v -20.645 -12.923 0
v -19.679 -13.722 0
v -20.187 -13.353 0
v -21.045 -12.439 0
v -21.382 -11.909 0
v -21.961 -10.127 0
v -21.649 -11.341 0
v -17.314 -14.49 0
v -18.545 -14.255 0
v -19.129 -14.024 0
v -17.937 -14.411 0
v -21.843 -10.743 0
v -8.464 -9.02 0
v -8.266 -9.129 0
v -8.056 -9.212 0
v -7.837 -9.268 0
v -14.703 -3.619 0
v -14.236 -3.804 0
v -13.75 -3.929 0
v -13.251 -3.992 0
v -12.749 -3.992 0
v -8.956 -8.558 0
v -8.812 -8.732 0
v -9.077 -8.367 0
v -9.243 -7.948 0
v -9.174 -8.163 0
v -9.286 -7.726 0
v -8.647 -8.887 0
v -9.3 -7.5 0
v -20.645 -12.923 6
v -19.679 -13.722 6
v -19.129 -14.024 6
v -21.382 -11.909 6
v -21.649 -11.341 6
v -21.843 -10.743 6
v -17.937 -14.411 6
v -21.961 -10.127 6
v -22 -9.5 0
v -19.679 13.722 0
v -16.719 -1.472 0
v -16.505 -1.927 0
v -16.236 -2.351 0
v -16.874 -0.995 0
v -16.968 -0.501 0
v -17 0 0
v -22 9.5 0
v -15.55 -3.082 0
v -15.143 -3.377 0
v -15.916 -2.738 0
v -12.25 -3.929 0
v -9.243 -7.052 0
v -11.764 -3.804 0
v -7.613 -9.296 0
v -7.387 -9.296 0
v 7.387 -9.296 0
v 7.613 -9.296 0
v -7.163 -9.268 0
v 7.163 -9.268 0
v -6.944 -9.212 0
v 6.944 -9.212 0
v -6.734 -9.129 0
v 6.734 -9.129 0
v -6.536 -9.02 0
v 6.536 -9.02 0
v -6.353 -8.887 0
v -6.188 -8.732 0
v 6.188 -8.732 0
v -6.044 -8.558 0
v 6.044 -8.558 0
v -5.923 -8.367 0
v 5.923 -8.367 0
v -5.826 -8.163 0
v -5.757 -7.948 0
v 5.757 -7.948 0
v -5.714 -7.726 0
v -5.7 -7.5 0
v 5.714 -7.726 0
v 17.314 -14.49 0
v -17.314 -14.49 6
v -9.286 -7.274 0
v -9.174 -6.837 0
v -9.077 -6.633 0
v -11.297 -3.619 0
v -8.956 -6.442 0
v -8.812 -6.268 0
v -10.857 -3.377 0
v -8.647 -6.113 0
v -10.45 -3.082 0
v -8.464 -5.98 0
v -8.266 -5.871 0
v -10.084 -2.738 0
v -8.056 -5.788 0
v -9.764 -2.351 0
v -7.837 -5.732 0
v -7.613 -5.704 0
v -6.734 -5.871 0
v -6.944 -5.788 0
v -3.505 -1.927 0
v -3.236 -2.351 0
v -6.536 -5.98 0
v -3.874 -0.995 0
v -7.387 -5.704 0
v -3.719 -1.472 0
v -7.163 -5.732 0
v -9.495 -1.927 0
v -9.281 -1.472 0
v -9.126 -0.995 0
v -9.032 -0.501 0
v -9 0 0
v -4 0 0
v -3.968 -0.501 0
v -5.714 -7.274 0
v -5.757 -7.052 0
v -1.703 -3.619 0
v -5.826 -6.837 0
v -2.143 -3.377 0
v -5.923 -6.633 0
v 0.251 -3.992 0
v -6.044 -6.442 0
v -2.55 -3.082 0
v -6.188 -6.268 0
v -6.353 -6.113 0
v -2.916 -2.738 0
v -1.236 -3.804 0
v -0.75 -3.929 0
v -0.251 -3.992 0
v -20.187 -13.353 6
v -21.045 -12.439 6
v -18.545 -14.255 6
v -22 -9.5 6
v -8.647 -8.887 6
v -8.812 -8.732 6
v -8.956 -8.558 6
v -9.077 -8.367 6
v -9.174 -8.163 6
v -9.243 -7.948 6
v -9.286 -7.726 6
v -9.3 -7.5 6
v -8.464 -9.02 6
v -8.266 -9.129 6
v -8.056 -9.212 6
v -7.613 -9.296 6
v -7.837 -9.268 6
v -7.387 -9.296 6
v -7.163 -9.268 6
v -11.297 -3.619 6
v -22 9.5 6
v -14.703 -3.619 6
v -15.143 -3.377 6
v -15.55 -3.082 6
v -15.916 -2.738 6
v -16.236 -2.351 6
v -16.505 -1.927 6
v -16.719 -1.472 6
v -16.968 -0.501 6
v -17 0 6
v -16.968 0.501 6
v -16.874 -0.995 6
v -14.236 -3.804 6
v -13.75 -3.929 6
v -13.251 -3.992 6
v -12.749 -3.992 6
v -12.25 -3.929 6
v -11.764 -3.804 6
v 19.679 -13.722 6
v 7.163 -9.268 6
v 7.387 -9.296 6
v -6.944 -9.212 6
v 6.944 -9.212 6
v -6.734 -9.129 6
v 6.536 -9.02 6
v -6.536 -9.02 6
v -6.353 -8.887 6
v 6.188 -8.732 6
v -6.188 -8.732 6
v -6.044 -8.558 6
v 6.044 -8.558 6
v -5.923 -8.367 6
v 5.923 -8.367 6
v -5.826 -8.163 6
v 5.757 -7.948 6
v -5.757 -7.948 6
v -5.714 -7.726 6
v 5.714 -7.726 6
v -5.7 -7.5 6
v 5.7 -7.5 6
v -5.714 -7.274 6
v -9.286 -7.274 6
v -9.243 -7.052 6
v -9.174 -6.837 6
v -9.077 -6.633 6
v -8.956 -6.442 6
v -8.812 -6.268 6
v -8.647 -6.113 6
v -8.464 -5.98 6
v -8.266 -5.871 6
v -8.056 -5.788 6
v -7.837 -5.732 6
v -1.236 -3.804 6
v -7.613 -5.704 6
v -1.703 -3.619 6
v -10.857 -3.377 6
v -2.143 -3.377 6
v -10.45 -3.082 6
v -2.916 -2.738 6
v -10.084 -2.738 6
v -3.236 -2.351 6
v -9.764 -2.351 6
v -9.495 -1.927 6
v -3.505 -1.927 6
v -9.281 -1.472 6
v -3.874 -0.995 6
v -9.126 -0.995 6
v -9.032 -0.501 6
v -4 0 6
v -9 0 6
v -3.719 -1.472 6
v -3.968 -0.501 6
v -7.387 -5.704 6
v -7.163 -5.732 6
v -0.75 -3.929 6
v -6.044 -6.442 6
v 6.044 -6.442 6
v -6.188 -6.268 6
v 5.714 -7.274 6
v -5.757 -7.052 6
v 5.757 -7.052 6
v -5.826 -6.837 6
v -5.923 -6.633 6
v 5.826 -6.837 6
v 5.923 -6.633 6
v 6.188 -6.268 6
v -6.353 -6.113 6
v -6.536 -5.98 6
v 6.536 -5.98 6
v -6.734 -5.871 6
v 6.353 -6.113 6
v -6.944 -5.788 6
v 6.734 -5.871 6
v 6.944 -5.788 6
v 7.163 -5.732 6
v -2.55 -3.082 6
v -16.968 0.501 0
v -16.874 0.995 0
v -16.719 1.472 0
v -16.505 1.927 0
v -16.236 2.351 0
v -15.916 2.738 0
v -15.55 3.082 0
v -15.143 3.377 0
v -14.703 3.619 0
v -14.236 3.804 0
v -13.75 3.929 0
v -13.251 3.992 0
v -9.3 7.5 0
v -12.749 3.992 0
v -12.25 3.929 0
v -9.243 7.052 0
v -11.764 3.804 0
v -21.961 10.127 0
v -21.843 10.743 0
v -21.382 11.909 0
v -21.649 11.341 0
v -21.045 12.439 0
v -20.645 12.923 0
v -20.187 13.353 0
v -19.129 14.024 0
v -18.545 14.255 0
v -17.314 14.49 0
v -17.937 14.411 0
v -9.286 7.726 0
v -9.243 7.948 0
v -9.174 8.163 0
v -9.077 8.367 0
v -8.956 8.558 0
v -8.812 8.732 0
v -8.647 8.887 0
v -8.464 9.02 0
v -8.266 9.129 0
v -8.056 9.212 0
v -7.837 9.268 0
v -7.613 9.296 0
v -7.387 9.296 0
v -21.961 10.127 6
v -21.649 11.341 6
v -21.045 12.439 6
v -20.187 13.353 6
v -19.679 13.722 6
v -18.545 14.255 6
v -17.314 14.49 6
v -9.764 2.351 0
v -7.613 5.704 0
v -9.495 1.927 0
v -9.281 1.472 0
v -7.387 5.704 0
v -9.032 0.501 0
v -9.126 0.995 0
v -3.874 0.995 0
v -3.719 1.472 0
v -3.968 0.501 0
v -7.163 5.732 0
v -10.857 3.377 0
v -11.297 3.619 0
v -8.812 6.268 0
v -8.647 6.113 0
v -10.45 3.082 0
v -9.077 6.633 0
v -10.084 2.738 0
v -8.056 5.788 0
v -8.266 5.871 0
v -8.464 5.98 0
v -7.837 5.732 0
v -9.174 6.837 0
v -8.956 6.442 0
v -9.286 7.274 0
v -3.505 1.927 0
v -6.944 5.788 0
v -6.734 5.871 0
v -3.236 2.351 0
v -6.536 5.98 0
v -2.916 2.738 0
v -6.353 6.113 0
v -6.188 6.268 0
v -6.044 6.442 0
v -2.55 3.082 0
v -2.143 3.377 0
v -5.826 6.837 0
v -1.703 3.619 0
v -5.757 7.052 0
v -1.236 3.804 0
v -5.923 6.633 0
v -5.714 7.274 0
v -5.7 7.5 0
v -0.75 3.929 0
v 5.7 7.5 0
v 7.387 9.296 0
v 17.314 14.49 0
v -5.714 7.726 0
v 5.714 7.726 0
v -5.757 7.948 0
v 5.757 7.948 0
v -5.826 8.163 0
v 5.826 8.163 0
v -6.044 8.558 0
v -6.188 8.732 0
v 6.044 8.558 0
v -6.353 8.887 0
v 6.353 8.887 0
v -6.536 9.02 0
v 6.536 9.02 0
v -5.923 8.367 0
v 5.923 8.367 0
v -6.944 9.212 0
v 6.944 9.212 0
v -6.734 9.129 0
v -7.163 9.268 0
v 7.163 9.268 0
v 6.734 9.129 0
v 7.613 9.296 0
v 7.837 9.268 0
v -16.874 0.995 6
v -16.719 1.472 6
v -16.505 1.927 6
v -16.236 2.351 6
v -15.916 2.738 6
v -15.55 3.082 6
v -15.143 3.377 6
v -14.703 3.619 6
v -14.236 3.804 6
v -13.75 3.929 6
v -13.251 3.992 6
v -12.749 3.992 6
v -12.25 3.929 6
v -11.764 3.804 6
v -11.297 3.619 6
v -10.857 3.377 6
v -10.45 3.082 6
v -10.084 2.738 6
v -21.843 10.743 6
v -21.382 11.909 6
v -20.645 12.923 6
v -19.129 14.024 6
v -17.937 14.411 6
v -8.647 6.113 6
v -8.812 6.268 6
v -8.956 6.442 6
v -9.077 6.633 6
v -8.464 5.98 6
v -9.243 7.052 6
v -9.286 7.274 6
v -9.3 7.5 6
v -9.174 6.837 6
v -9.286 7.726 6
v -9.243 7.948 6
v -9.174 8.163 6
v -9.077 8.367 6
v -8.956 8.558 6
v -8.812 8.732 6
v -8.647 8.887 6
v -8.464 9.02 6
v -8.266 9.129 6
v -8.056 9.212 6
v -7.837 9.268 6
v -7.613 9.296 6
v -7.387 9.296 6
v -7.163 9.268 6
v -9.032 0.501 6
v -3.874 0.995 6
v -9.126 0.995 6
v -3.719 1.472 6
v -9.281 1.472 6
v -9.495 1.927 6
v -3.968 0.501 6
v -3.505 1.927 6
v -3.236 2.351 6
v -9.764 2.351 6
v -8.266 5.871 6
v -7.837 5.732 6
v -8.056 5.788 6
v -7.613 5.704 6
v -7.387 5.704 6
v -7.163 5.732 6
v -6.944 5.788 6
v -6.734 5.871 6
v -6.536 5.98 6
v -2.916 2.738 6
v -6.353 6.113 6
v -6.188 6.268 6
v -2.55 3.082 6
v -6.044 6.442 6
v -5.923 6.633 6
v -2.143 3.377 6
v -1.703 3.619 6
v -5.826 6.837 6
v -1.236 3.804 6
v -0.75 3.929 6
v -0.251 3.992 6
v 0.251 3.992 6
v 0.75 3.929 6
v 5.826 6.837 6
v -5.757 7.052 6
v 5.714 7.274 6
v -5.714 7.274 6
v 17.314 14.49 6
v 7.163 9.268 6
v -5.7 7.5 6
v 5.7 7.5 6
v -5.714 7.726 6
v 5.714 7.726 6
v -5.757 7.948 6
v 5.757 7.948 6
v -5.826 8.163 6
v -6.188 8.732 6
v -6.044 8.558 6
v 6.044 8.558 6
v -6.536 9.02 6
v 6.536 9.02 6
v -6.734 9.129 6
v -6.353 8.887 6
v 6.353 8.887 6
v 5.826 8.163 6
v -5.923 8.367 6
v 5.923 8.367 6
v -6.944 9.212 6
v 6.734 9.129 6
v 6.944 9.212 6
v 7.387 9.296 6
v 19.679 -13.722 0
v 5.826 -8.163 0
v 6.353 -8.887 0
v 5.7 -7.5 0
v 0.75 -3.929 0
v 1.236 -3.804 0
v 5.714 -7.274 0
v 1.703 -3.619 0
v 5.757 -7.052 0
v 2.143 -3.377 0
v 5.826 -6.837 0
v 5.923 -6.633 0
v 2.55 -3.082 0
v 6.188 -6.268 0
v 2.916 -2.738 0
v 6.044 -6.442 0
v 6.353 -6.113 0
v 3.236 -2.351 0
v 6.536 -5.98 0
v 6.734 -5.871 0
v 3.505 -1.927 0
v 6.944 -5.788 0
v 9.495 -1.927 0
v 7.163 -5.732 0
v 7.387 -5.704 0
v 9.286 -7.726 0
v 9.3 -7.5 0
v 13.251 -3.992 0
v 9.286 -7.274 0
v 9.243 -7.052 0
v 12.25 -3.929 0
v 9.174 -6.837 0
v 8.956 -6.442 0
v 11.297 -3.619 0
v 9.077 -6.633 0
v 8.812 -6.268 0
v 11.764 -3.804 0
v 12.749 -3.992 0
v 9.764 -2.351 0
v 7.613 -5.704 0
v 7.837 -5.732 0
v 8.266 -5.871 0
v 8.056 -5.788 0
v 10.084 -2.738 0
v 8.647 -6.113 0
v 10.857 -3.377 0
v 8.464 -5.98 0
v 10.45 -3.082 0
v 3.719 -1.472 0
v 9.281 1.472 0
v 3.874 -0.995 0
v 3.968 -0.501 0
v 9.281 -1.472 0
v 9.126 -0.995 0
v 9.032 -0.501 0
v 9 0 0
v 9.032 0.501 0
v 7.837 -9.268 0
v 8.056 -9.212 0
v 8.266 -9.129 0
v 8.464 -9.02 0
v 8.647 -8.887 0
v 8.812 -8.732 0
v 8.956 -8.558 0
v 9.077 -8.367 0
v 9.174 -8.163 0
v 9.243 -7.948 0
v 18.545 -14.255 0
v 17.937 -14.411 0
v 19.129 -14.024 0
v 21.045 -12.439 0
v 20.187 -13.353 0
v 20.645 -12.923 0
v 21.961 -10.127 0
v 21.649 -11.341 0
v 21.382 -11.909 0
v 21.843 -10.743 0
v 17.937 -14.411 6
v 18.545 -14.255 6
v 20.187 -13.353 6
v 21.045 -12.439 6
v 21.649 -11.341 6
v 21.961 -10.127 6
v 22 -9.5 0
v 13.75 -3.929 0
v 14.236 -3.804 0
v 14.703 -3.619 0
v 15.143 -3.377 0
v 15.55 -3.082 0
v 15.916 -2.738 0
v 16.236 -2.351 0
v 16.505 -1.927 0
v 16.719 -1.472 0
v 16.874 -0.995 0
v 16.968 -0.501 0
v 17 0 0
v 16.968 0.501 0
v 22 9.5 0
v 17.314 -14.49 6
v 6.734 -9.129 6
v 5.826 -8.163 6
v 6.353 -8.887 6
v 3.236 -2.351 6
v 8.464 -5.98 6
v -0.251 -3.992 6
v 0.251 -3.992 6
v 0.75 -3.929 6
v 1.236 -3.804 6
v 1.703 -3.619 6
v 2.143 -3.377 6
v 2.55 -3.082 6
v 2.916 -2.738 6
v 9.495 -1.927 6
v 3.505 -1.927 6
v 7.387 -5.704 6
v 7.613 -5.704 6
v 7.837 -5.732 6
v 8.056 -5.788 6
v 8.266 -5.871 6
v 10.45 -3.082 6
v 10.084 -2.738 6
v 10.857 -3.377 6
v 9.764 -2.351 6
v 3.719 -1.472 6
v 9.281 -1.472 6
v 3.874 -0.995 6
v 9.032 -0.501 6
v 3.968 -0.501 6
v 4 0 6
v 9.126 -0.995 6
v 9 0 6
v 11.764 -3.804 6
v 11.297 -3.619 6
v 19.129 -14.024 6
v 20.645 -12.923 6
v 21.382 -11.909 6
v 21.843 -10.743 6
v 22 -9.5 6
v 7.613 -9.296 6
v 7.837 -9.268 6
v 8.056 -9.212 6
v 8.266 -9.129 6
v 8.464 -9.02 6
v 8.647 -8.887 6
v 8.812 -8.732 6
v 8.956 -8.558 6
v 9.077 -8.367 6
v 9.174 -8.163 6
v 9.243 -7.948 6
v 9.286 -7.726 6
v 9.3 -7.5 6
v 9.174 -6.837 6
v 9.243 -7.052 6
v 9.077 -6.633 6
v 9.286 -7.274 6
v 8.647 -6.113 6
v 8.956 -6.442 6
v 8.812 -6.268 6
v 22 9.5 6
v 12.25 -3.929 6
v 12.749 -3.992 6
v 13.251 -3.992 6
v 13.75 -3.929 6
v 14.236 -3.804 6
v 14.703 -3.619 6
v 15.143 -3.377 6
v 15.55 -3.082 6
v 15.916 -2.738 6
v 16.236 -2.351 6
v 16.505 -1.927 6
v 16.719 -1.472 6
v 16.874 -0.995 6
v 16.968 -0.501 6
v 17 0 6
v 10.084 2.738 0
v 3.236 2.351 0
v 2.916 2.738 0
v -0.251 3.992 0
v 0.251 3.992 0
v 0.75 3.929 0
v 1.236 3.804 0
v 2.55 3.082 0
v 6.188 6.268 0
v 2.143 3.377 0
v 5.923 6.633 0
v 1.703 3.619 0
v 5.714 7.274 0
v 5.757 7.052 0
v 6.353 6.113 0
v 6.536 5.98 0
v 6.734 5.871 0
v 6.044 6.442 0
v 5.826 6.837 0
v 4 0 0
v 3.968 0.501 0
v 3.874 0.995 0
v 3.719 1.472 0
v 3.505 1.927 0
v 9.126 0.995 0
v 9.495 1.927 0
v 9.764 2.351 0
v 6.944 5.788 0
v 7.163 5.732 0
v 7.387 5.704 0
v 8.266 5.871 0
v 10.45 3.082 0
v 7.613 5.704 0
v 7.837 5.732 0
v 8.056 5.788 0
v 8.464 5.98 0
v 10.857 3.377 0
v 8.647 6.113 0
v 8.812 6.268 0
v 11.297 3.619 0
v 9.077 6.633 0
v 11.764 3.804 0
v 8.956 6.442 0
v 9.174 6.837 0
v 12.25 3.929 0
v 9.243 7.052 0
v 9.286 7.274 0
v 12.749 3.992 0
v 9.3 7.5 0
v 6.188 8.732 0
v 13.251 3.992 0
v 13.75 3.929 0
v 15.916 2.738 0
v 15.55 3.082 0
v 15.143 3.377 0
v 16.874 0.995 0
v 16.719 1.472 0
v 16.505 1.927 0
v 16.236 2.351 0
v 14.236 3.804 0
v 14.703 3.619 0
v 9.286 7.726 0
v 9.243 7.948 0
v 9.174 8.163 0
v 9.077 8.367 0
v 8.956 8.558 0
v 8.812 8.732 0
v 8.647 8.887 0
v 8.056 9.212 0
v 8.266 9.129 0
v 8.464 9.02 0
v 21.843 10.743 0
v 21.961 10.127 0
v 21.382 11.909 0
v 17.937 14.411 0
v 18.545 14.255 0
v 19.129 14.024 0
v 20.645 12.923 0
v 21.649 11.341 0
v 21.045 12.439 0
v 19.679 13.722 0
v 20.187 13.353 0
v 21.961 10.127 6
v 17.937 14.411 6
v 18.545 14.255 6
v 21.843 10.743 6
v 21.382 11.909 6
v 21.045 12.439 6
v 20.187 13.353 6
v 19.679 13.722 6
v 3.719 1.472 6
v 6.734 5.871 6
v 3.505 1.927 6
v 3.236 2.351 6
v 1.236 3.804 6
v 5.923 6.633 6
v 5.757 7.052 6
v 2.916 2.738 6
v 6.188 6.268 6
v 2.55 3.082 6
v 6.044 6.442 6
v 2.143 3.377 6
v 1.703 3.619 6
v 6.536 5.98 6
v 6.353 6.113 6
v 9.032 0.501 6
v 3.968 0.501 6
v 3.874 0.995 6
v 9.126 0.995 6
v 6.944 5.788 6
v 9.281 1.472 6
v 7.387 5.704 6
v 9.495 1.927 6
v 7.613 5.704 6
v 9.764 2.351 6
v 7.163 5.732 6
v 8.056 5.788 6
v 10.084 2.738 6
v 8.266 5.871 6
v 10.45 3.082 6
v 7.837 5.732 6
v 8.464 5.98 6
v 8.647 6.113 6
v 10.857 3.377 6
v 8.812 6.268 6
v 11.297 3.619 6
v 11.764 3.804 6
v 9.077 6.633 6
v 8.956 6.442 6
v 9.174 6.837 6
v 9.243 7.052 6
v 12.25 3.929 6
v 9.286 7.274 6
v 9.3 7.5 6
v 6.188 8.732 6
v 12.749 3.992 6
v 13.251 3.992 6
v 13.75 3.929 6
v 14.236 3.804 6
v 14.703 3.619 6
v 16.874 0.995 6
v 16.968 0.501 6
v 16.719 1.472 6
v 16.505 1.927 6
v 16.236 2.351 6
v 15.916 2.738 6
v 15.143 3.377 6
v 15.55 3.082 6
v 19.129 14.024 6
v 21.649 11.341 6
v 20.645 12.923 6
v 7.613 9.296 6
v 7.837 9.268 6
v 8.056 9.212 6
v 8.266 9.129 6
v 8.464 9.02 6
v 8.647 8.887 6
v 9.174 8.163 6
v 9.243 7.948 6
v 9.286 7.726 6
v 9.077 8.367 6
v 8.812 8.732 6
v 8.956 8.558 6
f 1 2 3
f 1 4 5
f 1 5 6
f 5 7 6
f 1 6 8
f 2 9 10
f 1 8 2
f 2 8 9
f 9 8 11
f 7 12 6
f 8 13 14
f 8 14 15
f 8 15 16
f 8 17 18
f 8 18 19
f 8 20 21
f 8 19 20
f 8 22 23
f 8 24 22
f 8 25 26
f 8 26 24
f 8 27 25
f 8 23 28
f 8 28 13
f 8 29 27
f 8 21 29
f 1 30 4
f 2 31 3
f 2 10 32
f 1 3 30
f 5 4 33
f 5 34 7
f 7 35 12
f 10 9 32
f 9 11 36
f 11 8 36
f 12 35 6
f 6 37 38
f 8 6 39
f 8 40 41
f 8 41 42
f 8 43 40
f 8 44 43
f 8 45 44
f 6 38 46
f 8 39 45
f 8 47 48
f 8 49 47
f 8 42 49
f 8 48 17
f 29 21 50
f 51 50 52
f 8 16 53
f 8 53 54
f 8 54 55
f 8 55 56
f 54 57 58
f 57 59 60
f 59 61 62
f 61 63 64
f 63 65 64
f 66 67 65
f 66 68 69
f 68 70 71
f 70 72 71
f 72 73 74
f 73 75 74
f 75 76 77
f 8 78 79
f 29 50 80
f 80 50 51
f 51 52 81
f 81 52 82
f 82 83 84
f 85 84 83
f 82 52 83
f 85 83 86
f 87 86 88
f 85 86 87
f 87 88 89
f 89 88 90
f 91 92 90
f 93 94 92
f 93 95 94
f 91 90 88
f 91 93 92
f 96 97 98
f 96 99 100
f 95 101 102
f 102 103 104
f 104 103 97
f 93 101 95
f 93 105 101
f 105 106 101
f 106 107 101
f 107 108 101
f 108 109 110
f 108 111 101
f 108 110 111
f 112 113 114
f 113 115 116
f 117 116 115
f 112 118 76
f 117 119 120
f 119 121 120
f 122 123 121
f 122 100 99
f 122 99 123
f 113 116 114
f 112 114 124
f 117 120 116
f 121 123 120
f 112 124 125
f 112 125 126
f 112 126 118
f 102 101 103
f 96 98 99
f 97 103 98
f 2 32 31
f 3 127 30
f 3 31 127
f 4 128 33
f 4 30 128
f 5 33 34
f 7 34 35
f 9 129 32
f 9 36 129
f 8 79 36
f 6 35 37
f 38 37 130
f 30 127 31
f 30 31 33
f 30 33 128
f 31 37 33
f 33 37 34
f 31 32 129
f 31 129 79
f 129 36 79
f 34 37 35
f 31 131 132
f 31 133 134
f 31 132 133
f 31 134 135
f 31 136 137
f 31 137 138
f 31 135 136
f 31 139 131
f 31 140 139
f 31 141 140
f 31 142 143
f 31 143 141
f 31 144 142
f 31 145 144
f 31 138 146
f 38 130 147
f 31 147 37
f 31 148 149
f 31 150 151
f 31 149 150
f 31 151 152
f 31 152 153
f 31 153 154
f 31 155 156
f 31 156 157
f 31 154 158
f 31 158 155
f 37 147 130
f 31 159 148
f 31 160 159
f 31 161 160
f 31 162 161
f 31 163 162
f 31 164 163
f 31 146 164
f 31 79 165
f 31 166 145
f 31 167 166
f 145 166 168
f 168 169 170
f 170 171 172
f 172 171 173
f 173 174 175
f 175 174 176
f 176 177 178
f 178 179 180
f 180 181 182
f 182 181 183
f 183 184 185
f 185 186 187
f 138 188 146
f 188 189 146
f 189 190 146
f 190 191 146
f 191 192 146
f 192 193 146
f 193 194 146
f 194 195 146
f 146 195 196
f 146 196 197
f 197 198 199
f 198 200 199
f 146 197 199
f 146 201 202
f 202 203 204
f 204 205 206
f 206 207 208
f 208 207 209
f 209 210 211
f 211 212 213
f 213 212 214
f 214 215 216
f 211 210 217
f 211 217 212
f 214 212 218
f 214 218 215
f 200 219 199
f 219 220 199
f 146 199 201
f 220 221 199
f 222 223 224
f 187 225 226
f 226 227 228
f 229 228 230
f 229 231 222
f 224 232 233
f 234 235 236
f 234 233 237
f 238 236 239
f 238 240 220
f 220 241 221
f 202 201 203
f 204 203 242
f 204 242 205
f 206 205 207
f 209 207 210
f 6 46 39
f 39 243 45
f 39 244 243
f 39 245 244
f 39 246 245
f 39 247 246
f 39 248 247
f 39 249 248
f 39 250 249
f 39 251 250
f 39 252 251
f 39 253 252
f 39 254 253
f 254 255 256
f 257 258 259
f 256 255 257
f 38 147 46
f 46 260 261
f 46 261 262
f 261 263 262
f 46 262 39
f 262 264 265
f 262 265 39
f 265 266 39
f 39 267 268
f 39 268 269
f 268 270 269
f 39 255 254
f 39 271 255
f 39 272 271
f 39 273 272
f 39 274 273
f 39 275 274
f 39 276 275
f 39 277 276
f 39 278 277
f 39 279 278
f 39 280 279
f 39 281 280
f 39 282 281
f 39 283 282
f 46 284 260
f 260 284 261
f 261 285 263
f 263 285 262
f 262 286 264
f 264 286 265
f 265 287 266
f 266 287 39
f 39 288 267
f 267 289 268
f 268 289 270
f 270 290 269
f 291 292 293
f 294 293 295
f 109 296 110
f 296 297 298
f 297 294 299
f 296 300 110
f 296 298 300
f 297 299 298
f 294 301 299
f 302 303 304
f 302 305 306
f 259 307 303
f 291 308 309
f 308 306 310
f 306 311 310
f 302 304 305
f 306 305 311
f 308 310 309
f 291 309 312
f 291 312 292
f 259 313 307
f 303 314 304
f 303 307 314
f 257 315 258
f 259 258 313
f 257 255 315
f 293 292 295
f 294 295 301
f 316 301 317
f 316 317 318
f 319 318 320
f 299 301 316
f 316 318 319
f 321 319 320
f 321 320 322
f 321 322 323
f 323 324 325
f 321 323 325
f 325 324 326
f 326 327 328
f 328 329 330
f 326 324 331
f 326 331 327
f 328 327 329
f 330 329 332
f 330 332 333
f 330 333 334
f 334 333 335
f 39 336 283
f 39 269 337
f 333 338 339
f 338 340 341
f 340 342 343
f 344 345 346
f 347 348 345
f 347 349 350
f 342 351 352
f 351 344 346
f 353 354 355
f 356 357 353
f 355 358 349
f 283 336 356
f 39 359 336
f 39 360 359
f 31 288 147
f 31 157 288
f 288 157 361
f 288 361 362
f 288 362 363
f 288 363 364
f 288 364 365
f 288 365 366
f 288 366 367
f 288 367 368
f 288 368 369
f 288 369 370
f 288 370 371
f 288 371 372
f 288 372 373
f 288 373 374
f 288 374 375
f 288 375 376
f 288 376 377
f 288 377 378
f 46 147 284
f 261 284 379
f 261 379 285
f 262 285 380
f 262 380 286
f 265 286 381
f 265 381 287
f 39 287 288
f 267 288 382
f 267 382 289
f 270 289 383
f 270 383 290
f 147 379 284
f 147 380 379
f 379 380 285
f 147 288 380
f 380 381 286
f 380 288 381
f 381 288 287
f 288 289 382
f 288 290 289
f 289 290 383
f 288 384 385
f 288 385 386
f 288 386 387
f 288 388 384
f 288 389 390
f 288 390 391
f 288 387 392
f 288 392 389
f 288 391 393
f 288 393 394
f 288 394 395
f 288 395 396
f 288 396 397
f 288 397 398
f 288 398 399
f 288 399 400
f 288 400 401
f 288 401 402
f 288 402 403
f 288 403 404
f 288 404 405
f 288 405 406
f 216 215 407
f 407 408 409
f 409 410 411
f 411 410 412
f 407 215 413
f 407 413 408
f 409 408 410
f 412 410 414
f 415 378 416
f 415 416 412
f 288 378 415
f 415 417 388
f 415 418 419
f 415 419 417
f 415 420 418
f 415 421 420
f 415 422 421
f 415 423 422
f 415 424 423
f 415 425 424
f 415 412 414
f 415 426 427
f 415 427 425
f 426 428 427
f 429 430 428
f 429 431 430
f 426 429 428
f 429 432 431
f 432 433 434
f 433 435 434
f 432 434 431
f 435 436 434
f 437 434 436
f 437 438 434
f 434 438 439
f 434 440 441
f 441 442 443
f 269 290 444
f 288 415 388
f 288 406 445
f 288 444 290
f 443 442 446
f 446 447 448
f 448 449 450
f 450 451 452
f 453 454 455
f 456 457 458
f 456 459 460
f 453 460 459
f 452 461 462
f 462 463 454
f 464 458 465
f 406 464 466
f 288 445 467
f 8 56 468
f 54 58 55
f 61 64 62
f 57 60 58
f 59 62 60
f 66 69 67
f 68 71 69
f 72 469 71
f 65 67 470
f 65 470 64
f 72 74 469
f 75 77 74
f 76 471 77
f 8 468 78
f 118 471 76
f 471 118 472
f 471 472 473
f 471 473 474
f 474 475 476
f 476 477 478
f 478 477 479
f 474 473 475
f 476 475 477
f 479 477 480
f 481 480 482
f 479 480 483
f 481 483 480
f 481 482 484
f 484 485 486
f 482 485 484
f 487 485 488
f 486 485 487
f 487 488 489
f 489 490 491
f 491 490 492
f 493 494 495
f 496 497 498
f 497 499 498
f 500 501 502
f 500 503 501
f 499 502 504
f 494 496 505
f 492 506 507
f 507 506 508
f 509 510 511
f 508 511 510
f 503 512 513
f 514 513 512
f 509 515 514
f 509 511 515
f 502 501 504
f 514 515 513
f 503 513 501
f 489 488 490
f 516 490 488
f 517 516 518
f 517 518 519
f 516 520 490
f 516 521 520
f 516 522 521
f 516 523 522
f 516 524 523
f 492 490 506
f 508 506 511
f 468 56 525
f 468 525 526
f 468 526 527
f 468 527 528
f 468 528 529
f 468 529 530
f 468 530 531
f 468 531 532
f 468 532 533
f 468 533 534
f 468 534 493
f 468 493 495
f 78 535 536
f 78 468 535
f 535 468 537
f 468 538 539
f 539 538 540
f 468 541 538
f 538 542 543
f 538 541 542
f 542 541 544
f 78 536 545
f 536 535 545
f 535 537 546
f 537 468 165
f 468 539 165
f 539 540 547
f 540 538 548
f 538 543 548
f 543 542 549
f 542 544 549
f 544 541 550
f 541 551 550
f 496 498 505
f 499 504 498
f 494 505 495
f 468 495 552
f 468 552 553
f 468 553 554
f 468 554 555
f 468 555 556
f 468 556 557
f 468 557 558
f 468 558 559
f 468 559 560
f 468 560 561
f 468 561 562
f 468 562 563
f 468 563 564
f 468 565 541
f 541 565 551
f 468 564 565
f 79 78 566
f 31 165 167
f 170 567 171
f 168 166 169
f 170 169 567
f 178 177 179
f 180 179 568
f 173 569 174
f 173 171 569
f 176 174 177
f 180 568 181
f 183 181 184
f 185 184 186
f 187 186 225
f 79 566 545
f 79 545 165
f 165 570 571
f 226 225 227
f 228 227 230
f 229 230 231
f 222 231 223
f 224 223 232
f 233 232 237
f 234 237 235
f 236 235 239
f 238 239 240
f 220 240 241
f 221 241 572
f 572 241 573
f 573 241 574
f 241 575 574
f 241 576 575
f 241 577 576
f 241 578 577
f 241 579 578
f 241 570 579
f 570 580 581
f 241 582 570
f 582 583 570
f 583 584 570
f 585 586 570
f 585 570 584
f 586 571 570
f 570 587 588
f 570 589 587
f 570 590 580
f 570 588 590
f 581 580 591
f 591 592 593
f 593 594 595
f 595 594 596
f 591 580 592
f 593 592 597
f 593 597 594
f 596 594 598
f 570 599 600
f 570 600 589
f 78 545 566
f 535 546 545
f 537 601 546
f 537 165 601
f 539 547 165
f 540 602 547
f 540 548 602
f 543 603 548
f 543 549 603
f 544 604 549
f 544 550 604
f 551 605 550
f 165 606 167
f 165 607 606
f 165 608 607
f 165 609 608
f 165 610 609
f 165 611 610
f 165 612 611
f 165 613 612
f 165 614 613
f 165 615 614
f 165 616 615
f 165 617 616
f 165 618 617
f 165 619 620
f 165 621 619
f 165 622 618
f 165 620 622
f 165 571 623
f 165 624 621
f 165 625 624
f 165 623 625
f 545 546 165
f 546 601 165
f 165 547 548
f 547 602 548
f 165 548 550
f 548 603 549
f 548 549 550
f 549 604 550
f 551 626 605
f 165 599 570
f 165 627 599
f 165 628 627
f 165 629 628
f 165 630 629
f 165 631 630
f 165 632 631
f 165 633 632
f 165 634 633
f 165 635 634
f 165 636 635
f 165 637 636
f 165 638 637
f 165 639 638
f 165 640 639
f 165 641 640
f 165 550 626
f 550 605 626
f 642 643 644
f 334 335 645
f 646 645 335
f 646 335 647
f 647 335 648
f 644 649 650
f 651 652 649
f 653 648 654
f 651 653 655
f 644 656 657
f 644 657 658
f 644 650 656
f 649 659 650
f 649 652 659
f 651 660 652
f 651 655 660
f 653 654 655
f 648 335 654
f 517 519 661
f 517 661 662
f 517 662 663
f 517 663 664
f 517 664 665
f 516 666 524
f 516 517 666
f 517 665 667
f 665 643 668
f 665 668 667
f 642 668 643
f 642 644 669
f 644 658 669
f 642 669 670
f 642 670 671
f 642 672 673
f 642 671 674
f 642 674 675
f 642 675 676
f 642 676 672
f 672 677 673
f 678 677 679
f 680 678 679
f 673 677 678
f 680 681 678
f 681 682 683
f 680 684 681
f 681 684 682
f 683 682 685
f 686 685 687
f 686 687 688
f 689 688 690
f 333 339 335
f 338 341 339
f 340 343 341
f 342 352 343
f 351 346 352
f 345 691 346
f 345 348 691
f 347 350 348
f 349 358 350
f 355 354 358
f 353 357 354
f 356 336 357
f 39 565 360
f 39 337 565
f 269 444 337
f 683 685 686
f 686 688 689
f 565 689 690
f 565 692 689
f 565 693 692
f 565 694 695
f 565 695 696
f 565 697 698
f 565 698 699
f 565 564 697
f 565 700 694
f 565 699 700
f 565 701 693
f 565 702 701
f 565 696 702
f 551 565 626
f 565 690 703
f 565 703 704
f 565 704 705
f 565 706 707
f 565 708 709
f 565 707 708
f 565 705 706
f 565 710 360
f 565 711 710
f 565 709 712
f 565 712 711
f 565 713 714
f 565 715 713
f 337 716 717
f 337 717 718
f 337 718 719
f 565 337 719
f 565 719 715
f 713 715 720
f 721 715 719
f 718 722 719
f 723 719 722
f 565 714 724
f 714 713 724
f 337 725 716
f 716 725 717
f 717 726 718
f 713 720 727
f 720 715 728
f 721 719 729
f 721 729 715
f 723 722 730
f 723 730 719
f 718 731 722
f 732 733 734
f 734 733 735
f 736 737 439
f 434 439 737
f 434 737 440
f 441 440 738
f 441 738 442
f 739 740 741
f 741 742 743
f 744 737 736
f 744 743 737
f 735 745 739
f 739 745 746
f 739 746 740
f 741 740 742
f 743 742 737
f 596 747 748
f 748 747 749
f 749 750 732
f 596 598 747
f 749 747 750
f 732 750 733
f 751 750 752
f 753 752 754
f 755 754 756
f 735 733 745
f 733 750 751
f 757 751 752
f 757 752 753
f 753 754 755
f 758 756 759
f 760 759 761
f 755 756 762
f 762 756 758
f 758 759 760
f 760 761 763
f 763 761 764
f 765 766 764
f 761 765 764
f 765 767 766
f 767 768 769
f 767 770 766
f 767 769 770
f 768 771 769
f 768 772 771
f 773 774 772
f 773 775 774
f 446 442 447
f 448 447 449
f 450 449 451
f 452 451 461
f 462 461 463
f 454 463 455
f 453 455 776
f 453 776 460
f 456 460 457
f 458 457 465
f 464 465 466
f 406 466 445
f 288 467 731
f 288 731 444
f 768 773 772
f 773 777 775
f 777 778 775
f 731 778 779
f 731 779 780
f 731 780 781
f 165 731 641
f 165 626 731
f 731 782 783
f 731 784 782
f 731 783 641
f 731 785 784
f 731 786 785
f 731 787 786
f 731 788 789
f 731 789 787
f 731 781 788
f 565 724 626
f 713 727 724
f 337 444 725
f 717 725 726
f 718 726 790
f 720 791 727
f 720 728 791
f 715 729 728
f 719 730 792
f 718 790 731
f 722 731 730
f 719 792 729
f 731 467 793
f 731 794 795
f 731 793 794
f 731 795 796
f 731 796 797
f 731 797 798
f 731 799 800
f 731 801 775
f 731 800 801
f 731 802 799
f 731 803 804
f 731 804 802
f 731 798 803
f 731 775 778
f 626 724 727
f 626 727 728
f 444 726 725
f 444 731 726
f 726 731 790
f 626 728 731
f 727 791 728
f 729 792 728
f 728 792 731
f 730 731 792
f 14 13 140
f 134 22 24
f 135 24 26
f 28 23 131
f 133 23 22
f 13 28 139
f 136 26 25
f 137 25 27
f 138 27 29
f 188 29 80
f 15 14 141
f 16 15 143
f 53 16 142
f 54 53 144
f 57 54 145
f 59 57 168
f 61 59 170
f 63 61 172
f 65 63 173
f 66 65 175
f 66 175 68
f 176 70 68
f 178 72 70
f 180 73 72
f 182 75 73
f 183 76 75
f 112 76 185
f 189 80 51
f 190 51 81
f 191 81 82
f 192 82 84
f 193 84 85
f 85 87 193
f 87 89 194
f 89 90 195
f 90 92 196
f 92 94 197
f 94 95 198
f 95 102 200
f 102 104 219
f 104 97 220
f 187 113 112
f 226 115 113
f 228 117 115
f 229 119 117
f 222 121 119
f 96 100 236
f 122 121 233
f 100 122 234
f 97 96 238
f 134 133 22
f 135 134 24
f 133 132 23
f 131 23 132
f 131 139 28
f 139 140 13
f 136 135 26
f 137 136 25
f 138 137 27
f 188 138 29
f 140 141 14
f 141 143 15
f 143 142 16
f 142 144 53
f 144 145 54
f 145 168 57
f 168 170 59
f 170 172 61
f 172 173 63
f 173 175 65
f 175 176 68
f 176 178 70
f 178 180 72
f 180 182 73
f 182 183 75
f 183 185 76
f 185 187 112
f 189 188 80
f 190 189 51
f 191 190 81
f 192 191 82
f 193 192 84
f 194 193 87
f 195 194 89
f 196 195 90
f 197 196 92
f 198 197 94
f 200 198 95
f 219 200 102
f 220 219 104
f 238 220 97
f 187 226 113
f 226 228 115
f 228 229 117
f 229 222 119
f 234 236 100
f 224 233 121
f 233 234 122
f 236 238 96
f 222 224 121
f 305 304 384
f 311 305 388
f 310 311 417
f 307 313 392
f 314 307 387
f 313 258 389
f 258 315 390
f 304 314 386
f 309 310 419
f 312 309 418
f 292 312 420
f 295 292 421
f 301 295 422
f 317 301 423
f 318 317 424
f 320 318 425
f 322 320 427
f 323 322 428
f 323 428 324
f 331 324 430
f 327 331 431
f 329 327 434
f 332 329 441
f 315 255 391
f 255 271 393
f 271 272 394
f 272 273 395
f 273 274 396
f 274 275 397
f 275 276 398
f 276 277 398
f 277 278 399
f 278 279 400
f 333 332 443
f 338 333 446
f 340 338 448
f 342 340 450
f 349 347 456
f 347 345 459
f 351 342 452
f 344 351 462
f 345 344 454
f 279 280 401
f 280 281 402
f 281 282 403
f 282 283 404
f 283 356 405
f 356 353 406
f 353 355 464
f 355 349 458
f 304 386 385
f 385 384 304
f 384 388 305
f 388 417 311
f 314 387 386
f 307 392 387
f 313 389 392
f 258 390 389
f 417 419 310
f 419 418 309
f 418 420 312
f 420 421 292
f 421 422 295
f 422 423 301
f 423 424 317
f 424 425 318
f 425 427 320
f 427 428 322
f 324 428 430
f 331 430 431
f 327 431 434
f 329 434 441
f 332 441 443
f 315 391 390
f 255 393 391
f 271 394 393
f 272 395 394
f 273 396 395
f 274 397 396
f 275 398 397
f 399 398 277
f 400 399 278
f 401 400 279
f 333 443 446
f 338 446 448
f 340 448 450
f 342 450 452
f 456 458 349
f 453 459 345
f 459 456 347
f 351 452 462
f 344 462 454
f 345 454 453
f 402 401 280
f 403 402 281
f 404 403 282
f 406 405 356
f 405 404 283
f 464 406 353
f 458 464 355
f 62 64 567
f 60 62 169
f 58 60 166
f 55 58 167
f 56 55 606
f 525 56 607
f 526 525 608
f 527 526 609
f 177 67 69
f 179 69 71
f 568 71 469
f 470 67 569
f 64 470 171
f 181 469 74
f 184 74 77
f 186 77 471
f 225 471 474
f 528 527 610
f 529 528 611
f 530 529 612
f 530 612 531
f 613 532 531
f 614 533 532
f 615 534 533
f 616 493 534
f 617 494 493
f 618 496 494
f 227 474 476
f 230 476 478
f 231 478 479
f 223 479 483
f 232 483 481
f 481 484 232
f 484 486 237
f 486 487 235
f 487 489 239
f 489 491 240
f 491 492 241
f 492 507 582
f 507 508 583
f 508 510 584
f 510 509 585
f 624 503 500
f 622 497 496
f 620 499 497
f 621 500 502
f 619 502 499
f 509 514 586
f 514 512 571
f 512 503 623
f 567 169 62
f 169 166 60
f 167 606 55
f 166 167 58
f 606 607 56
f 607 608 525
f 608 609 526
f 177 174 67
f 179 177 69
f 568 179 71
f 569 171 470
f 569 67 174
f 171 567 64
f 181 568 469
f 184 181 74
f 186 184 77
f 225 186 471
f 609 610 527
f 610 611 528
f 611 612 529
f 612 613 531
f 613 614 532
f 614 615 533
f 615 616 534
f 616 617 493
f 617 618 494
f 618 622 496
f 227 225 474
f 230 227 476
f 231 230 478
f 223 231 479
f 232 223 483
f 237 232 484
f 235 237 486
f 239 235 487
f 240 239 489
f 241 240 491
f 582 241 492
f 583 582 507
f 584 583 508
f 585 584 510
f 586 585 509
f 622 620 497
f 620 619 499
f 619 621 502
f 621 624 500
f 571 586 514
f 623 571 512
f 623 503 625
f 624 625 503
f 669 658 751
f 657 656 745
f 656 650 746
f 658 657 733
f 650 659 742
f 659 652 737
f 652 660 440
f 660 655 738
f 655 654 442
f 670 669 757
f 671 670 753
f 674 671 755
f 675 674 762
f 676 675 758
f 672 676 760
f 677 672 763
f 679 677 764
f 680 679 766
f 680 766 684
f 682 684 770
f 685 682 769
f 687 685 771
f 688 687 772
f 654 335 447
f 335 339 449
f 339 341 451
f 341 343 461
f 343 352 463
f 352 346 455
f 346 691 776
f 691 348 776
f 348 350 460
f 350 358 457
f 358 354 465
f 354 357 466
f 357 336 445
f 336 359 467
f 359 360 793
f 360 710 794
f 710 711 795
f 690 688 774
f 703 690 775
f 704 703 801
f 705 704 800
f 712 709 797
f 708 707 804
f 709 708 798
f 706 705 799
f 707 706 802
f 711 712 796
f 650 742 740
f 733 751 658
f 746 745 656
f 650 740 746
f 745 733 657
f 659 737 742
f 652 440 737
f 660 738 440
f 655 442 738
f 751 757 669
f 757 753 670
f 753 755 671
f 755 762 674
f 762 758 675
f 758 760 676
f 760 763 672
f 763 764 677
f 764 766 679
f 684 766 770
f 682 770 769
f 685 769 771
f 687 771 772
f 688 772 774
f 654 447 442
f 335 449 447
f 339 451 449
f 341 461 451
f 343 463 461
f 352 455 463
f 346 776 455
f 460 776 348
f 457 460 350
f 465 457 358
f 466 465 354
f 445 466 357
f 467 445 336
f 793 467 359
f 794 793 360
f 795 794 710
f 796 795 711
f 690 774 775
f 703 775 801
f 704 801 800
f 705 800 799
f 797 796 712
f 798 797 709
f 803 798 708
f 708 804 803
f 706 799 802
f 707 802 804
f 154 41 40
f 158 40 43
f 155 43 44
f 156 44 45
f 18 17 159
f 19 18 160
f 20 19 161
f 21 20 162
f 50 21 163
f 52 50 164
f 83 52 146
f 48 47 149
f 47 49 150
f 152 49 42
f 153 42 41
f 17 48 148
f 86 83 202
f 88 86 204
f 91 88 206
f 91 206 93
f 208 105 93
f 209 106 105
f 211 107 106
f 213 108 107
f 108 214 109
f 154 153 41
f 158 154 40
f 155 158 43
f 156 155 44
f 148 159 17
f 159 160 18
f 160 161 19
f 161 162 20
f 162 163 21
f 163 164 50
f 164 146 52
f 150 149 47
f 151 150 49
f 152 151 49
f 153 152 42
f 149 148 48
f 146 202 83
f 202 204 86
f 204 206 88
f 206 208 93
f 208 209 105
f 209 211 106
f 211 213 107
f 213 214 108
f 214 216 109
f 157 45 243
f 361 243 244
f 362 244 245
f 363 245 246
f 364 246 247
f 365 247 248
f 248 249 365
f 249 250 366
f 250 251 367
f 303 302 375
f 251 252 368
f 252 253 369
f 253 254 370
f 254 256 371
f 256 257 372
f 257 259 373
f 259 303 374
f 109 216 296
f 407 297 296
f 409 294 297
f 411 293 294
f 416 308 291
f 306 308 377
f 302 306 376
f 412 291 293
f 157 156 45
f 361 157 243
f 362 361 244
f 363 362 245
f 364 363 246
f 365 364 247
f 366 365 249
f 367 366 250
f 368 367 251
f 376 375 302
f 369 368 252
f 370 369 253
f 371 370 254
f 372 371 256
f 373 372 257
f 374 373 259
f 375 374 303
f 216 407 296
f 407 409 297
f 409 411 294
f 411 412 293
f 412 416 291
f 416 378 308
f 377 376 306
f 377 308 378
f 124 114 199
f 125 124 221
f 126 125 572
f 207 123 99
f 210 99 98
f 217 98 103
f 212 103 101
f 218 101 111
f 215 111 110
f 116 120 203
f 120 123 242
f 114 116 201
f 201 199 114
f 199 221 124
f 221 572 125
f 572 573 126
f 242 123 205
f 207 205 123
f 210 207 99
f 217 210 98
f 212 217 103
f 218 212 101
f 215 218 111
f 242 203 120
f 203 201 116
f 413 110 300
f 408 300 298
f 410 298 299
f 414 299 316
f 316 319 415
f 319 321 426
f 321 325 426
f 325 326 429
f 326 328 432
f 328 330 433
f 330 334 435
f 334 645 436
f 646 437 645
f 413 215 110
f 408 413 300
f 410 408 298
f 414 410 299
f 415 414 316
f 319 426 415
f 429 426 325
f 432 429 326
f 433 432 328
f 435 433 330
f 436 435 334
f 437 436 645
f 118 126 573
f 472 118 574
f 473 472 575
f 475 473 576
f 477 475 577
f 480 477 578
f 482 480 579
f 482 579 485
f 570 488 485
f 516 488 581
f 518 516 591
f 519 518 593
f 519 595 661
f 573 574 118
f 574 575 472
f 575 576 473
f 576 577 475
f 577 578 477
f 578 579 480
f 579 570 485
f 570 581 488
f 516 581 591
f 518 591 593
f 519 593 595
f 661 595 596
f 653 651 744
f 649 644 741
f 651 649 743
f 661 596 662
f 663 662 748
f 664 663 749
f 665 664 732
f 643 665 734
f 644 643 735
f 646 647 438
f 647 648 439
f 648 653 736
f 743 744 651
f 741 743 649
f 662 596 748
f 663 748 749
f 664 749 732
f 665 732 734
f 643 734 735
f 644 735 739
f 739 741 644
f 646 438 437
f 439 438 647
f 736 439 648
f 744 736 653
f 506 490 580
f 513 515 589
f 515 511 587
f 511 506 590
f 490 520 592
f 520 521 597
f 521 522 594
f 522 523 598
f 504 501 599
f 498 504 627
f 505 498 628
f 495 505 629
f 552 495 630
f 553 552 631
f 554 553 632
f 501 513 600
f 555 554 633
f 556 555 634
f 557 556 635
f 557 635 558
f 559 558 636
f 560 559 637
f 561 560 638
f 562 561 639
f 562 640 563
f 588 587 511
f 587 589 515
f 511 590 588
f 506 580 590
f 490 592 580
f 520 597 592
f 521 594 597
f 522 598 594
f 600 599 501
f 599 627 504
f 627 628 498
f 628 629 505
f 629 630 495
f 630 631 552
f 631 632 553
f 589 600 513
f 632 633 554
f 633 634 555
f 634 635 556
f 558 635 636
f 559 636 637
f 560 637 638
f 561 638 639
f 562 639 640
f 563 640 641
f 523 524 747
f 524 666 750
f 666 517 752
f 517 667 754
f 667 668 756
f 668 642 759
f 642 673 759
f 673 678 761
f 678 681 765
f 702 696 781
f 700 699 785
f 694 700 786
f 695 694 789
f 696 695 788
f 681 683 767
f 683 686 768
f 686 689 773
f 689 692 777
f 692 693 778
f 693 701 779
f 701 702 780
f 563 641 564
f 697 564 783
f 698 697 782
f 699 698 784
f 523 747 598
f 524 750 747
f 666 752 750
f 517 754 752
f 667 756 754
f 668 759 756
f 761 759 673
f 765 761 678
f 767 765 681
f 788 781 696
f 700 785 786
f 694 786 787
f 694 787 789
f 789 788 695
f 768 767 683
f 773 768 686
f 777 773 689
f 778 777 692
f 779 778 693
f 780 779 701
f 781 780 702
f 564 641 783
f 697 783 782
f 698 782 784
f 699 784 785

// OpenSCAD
$fn = 50;

difference() {
	union() {
		hull() {
			translate(v = [-17.0, 9.5, 0]) {
				cylinder(h = 6, r = 5);
			}
			translate(v = [17.0, 9.5, 0]) {
				cylinder(h = 6, r = 5);
			}
			translate(v = [-17.0, -9.5, 0]) {
				cylinder(h = 6, r = 5);
			}
			translate(v = [17.0, -9.5, 0]) {
				cylinder(h = 6, r = 5);
			}
		}
	}
	union() {
		translate(v = [-7.5, -7.5, 0]) {
			cylinder(h = 6, r = 1.8);
		}
		translate(v = [-7.5, 7.5, 0]) {
			cylinder(h = 6, r = 1.8);
		}
		translate(v = [7.5, -7.5, 0]) {
			cylinder(h = 6, r = 1.8);
		}
		translate(v = [7.5, 7.5, 0]) {
			cylinder(h = 6, r = 1.8);
		}
		translate(v = [-13.0, 0, 0.0]) {
			cylinder(h = 6, r = 4.0);
		}
		cylinder(h = 6, r = 4.0);
		translate(v = [13.0, 0, 0.0]) {
			cylinder(h = 6, r = 4.0);
		}
	}
}
